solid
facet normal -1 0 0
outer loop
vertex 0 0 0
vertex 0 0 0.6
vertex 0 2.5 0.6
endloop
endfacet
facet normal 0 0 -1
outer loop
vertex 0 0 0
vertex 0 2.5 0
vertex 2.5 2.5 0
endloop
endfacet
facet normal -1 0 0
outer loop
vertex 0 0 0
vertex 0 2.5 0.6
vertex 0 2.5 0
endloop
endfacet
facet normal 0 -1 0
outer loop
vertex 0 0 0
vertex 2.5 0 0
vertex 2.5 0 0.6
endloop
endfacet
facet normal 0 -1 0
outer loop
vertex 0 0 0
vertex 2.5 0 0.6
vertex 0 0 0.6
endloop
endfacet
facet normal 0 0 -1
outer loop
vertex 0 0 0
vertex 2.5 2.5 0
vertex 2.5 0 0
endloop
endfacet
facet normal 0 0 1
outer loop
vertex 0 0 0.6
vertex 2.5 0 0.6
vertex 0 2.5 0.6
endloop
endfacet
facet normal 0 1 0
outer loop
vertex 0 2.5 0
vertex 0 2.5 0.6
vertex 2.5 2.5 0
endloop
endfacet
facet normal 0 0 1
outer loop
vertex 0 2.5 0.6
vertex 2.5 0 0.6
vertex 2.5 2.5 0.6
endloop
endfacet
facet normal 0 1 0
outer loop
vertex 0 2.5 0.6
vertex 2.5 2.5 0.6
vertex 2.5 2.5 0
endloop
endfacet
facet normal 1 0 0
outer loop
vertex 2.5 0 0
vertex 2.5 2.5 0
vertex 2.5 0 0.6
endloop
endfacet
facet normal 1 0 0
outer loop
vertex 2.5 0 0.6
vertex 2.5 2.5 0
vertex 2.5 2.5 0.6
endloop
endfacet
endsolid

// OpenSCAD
/* Warning, this is a very basic generator with a lot of approximation 
input data : [UQFN, MVX, 2.5x2.5x0.6mm, 16, , A, C04-00216A]
generated by com.zoubworld.electronics.cad.model3d.Basic
Date : Sun Feb 15 10:50:48 CET 2026
*/

//body
color("black")
translate([0,0,0])
cube([2.5,2.5,0.6], center=false);
